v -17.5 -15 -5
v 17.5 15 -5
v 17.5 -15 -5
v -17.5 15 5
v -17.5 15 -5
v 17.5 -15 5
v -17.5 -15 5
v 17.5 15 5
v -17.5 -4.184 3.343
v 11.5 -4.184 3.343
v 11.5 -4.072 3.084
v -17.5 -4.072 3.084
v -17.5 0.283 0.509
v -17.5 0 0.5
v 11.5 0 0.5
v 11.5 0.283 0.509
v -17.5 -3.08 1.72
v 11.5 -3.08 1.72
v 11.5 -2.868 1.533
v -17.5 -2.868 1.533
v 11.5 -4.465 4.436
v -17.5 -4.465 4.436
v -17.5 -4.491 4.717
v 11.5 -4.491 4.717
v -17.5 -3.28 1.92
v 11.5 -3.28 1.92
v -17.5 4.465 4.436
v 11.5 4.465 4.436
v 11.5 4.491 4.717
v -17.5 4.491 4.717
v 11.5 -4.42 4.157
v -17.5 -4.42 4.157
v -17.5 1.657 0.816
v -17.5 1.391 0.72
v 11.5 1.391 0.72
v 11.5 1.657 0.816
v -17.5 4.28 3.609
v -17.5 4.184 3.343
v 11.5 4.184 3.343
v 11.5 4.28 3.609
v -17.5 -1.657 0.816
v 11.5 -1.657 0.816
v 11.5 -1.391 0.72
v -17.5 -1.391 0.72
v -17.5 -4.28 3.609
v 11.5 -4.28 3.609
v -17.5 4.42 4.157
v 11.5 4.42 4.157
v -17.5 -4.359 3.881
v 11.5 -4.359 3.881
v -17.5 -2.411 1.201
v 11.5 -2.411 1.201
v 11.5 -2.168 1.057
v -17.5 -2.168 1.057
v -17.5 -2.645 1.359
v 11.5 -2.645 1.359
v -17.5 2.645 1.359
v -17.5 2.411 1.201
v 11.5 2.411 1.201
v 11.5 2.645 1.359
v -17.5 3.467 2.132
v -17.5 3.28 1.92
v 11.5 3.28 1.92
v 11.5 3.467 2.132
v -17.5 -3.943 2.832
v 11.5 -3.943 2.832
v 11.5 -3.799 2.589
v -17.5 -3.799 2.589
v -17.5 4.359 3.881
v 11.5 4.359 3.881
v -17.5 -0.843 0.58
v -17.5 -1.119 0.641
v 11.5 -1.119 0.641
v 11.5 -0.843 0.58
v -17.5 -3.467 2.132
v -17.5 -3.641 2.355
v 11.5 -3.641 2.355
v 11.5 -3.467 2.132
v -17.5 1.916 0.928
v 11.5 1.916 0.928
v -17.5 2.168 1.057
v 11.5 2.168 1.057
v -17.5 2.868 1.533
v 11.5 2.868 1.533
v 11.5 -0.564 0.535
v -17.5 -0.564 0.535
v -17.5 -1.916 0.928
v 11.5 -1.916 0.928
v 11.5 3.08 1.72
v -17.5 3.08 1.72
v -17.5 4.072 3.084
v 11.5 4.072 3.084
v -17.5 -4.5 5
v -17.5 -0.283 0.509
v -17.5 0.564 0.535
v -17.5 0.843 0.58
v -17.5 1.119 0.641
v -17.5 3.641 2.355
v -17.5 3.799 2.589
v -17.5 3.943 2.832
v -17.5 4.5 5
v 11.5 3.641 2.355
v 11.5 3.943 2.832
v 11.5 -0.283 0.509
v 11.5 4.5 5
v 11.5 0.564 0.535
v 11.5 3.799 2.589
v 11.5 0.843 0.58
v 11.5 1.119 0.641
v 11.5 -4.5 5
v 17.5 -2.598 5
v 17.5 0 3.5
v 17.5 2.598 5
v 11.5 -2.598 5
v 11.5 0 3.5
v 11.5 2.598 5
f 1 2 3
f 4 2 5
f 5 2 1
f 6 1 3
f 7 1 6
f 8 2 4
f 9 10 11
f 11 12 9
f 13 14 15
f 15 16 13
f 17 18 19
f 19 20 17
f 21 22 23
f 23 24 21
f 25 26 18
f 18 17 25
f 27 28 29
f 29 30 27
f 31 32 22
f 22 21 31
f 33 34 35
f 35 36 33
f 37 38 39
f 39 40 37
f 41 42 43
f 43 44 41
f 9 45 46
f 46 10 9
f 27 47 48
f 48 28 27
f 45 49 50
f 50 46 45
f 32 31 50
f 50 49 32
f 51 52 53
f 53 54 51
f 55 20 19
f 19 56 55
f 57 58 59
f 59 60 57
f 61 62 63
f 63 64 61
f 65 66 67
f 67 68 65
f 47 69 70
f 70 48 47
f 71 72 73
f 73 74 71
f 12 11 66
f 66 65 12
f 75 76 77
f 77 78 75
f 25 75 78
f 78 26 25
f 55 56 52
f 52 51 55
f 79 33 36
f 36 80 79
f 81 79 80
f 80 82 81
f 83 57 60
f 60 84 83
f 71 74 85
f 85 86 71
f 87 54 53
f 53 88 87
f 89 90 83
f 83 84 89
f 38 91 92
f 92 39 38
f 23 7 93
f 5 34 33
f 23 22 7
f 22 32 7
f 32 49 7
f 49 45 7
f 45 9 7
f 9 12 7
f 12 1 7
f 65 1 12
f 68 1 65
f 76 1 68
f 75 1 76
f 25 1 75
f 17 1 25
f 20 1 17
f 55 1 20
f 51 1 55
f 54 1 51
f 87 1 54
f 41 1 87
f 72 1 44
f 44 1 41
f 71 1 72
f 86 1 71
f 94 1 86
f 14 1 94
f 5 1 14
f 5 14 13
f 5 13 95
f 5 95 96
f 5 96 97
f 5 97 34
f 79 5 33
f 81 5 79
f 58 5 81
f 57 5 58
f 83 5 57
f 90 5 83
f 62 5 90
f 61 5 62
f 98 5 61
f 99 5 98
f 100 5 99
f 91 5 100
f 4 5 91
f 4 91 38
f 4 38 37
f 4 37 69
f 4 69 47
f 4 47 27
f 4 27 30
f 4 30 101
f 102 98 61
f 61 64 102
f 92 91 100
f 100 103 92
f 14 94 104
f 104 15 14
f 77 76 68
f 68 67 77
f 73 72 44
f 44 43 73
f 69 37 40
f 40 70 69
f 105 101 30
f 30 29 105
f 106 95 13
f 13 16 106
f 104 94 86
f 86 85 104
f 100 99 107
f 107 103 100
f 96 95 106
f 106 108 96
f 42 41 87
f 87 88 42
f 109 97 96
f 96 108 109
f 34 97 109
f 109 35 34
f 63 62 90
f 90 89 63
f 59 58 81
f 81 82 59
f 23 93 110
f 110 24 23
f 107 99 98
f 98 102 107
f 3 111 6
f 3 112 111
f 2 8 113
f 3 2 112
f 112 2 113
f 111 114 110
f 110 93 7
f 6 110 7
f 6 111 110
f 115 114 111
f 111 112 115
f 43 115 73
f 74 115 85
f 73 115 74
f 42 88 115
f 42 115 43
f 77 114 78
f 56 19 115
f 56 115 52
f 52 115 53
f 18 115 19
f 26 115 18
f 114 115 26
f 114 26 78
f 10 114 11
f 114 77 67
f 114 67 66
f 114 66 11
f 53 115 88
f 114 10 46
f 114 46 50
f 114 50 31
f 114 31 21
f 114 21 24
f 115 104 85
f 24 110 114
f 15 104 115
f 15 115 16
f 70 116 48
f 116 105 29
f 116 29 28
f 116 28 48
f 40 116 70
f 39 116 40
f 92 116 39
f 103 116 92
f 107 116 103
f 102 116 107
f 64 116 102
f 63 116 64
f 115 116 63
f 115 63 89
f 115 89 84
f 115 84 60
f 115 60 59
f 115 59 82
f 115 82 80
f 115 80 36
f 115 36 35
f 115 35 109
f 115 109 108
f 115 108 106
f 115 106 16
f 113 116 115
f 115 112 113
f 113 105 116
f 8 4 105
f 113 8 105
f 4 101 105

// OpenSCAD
dissection_platform();

module dissection_platform(){
    length = 35;
    height = 10;
    tube_d = 9;
    head_length = 6;
    difference(){
        cube([length,30,height], center=true);
        translate([-head_length,0,height/2])
        rotate([0,90,0])
        cylinder(h=length, d = tube_d, center=true, $fn = 100);

        #translate([length/2-head_length,0,height/2+6])
        rotate([0,90,0])
        cylinder(h=head_length+2, d=15, $fn=6);
        // cube([10,10,10], center=true);
    }
}
